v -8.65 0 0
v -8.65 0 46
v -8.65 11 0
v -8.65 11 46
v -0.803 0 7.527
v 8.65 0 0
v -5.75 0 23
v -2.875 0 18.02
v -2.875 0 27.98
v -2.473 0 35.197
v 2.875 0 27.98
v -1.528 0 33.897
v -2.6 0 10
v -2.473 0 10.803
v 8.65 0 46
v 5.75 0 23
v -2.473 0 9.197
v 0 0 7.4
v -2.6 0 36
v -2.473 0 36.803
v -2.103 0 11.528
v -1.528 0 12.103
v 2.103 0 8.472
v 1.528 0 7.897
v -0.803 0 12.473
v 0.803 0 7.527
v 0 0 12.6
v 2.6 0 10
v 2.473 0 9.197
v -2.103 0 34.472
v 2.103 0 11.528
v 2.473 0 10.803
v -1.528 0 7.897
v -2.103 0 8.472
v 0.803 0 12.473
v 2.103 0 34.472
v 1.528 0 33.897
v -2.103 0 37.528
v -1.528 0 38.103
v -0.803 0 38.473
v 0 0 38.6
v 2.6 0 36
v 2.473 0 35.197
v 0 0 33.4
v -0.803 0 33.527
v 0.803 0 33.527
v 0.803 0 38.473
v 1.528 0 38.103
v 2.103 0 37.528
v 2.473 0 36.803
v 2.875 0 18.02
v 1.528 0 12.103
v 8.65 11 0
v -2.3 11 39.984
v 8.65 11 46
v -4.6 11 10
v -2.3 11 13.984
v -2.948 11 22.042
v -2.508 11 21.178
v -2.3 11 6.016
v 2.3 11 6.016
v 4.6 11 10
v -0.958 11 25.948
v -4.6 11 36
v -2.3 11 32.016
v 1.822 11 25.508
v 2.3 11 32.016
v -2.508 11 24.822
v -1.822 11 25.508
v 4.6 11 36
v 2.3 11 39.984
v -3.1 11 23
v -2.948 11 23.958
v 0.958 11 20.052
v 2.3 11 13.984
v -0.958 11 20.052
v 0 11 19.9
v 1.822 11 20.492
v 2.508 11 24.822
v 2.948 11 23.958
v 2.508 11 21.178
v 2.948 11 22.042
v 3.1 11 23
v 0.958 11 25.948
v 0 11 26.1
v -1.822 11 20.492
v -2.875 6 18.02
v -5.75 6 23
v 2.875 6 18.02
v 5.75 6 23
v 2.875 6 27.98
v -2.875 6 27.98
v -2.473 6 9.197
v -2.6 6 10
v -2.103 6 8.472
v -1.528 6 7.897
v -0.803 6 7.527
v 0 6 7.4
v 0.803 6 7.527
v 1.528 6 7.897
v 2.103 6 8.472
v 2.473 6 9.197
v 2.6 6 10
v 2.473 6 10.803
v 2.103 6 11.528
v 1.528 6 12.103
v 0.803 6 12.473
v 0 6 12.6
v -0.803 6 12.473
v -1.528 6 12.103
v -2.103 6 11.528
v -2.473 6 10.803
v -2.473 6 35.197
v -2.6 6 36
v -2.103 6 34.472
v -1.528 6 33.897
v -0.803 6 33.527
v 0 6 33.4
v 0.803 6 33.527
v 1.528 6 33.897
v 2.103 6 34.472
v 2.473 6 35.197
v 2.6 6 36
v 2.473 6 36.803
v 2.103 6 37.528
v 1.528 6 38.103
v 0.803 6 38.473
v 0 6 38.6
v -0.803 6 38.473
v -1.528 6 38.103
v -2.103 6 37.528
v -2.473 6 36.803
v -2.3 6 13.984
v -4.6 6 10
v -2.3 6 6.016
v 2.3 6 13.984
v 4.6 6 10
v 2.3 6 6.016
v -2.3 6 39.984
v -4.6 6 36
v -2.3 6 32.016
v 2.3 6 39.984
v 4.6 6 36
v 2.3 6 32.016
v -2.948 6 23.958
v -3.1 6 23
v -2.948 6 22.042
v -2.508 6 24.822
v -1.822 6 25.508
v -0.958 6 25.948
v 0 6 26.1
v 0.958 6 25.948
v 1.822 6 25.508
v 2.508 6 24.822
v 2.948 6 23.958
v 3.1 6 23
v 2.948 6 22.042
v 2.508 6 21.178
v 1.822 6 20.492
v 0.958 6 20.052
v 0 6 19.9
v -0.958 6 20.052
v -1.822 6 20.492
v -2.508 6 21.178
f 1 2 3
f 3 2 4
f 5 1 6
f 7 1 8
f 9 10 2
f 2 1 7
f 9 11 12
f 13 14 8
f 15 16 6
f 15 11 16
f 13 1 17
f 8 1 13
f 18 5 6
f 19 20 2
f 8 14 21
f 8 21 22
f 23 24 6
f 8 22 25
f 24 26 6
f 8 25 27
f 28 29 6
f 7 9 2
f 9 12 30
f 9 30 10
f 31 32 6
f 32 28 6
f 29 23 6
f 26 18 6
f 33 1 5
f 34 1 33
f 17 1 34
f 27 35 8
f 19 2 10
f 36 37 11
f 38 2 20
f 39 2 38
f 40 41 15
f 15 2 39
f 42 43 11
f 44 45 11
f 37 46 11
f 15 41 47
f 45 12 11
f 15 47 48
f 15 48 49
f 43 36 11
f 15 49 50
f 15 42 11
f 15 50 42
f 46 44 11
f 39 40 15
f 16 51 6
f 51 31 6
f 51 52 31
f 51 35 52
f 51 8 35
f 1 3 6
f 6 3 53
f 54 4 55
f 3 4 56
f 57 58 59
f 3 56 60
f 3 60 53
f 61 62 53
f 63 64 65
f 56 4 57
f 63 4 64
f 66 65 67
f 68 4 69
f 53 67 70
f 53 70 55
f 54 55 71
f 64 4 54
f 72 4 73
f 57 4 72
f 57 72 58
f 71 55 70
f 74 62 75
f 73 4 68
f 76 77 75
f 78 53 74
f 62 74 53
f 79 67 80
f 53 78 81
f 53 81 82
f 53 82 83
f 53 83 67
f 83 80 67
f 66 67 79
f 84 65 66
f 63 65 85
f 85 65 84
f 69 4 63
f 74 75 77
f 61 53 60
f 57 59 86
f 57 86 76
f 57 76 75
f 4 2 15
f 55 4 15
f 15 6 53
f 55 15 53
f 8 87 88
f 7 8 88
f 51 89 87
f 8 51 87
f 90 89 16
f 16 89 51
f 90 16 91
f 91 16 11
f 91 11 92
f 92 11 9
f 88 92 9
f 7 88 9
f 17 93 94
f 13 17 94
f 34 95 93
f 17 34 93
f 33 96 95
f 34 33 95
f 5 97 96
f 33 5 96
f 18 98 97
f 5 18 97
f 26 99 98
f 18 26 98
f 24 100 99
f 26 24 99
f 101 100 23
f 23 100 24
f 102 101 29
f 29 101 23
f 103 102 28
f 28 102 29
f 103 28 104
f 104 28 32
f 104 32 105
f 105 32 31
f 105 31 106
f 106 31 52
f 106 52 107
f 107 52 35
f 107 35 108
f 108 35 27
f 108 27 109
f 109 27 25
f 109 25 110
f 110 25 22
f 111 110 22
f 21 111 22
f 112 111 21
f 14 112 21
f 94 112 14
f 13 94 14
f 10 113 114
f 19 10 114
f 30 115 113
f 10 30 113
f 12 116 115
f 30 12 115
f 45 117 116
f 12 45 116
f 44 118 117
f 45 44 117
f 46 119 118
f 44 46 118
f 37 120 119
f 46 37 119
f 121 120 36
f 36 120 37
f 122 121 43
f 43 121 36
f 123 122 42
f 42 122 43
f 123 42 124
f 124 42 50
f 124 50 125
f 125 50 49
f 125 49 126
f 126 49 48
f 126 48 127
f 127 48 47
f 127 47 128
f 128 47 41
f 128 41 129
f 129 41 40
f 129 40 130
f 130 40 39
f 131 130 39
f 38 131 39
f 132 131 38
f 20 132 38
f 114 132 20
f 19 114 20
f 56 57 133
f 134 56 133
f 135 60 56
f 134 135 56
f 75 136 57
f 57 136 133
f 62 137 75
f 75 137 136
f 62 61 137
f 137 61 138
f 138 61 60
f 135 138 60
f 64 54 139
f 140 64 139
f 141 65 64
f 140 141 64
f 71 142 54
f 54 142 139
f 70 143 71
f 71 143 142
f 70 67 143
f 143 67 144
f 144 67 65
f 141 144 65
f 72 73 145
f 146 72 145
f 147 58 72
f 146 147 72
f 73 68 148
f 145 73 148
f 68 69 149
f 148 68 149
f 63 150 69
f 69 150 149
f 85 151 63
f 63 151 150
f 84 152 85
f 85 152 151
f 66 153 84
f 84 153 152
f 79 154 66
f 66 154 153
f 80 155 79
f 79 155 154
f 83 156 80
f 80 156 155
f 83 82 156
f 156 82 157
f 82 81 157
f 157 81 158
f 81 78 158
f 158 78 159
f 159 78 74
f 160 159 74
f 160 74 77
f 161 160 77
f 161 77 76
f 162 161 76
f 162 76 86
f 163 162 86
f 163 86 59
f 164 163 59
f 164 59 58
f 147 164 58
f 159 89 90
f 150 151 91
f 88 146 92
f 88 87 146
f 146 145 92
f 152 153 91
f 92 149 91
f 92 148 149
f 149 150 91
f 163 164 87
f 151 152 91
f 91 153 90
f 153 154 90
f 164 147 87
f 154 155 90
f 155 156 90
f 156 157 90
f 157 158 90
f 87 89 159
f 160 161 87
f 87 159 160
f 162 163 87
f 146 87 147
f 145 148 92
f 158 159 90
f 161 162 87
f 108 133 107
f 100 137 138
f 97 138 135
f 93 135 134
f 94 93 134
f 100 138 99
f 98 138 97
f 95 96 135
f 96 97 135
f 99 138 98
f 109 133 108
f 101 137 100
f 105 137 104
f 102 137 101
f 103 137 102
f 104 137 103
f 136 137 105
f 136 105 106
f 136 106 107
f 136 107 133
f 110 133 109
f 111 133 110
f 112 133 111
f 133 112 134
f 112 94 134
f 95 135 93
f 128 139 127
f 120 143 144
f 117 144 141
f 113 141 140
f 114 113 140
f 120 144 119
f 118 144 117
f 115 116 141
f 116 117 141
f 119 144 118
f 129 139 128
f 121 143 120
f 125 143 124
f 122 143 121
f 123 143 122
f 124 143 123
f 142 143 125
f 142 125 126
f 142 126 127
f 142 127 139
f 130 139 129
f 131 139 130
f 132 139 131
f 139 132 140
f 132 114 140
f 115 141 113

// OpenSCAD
use <MCAD/nuts_and_bolts.scad>;

difference(){
translate([-17.3/2,0,0])
union(){
cube([17.3,11,46]);

}

translate([0,15,23])rotate([90,0,0])#cylinder(r=6.2/2,h = 20,$fn=20);
translate([0,6,23])rotate([90,0,0])scale([1,1,1.5])#nutHole(6);

translate([0,15,10])rotate([90,0,0])#cylinder(r=5.2/2, h=20, $fn=20);
translate([0,11+1,10])rotate([90,0,0])scale([1,1,1.5])#nutHole(5);

translate([0,15,36])rotate([90,0,0])#cylinder(r=5.2/2, h=20, $fn=20);
translate([0,11+1,36])rotate([90,0,0])scale([1,1,1.5])#nutHole(5);
}
